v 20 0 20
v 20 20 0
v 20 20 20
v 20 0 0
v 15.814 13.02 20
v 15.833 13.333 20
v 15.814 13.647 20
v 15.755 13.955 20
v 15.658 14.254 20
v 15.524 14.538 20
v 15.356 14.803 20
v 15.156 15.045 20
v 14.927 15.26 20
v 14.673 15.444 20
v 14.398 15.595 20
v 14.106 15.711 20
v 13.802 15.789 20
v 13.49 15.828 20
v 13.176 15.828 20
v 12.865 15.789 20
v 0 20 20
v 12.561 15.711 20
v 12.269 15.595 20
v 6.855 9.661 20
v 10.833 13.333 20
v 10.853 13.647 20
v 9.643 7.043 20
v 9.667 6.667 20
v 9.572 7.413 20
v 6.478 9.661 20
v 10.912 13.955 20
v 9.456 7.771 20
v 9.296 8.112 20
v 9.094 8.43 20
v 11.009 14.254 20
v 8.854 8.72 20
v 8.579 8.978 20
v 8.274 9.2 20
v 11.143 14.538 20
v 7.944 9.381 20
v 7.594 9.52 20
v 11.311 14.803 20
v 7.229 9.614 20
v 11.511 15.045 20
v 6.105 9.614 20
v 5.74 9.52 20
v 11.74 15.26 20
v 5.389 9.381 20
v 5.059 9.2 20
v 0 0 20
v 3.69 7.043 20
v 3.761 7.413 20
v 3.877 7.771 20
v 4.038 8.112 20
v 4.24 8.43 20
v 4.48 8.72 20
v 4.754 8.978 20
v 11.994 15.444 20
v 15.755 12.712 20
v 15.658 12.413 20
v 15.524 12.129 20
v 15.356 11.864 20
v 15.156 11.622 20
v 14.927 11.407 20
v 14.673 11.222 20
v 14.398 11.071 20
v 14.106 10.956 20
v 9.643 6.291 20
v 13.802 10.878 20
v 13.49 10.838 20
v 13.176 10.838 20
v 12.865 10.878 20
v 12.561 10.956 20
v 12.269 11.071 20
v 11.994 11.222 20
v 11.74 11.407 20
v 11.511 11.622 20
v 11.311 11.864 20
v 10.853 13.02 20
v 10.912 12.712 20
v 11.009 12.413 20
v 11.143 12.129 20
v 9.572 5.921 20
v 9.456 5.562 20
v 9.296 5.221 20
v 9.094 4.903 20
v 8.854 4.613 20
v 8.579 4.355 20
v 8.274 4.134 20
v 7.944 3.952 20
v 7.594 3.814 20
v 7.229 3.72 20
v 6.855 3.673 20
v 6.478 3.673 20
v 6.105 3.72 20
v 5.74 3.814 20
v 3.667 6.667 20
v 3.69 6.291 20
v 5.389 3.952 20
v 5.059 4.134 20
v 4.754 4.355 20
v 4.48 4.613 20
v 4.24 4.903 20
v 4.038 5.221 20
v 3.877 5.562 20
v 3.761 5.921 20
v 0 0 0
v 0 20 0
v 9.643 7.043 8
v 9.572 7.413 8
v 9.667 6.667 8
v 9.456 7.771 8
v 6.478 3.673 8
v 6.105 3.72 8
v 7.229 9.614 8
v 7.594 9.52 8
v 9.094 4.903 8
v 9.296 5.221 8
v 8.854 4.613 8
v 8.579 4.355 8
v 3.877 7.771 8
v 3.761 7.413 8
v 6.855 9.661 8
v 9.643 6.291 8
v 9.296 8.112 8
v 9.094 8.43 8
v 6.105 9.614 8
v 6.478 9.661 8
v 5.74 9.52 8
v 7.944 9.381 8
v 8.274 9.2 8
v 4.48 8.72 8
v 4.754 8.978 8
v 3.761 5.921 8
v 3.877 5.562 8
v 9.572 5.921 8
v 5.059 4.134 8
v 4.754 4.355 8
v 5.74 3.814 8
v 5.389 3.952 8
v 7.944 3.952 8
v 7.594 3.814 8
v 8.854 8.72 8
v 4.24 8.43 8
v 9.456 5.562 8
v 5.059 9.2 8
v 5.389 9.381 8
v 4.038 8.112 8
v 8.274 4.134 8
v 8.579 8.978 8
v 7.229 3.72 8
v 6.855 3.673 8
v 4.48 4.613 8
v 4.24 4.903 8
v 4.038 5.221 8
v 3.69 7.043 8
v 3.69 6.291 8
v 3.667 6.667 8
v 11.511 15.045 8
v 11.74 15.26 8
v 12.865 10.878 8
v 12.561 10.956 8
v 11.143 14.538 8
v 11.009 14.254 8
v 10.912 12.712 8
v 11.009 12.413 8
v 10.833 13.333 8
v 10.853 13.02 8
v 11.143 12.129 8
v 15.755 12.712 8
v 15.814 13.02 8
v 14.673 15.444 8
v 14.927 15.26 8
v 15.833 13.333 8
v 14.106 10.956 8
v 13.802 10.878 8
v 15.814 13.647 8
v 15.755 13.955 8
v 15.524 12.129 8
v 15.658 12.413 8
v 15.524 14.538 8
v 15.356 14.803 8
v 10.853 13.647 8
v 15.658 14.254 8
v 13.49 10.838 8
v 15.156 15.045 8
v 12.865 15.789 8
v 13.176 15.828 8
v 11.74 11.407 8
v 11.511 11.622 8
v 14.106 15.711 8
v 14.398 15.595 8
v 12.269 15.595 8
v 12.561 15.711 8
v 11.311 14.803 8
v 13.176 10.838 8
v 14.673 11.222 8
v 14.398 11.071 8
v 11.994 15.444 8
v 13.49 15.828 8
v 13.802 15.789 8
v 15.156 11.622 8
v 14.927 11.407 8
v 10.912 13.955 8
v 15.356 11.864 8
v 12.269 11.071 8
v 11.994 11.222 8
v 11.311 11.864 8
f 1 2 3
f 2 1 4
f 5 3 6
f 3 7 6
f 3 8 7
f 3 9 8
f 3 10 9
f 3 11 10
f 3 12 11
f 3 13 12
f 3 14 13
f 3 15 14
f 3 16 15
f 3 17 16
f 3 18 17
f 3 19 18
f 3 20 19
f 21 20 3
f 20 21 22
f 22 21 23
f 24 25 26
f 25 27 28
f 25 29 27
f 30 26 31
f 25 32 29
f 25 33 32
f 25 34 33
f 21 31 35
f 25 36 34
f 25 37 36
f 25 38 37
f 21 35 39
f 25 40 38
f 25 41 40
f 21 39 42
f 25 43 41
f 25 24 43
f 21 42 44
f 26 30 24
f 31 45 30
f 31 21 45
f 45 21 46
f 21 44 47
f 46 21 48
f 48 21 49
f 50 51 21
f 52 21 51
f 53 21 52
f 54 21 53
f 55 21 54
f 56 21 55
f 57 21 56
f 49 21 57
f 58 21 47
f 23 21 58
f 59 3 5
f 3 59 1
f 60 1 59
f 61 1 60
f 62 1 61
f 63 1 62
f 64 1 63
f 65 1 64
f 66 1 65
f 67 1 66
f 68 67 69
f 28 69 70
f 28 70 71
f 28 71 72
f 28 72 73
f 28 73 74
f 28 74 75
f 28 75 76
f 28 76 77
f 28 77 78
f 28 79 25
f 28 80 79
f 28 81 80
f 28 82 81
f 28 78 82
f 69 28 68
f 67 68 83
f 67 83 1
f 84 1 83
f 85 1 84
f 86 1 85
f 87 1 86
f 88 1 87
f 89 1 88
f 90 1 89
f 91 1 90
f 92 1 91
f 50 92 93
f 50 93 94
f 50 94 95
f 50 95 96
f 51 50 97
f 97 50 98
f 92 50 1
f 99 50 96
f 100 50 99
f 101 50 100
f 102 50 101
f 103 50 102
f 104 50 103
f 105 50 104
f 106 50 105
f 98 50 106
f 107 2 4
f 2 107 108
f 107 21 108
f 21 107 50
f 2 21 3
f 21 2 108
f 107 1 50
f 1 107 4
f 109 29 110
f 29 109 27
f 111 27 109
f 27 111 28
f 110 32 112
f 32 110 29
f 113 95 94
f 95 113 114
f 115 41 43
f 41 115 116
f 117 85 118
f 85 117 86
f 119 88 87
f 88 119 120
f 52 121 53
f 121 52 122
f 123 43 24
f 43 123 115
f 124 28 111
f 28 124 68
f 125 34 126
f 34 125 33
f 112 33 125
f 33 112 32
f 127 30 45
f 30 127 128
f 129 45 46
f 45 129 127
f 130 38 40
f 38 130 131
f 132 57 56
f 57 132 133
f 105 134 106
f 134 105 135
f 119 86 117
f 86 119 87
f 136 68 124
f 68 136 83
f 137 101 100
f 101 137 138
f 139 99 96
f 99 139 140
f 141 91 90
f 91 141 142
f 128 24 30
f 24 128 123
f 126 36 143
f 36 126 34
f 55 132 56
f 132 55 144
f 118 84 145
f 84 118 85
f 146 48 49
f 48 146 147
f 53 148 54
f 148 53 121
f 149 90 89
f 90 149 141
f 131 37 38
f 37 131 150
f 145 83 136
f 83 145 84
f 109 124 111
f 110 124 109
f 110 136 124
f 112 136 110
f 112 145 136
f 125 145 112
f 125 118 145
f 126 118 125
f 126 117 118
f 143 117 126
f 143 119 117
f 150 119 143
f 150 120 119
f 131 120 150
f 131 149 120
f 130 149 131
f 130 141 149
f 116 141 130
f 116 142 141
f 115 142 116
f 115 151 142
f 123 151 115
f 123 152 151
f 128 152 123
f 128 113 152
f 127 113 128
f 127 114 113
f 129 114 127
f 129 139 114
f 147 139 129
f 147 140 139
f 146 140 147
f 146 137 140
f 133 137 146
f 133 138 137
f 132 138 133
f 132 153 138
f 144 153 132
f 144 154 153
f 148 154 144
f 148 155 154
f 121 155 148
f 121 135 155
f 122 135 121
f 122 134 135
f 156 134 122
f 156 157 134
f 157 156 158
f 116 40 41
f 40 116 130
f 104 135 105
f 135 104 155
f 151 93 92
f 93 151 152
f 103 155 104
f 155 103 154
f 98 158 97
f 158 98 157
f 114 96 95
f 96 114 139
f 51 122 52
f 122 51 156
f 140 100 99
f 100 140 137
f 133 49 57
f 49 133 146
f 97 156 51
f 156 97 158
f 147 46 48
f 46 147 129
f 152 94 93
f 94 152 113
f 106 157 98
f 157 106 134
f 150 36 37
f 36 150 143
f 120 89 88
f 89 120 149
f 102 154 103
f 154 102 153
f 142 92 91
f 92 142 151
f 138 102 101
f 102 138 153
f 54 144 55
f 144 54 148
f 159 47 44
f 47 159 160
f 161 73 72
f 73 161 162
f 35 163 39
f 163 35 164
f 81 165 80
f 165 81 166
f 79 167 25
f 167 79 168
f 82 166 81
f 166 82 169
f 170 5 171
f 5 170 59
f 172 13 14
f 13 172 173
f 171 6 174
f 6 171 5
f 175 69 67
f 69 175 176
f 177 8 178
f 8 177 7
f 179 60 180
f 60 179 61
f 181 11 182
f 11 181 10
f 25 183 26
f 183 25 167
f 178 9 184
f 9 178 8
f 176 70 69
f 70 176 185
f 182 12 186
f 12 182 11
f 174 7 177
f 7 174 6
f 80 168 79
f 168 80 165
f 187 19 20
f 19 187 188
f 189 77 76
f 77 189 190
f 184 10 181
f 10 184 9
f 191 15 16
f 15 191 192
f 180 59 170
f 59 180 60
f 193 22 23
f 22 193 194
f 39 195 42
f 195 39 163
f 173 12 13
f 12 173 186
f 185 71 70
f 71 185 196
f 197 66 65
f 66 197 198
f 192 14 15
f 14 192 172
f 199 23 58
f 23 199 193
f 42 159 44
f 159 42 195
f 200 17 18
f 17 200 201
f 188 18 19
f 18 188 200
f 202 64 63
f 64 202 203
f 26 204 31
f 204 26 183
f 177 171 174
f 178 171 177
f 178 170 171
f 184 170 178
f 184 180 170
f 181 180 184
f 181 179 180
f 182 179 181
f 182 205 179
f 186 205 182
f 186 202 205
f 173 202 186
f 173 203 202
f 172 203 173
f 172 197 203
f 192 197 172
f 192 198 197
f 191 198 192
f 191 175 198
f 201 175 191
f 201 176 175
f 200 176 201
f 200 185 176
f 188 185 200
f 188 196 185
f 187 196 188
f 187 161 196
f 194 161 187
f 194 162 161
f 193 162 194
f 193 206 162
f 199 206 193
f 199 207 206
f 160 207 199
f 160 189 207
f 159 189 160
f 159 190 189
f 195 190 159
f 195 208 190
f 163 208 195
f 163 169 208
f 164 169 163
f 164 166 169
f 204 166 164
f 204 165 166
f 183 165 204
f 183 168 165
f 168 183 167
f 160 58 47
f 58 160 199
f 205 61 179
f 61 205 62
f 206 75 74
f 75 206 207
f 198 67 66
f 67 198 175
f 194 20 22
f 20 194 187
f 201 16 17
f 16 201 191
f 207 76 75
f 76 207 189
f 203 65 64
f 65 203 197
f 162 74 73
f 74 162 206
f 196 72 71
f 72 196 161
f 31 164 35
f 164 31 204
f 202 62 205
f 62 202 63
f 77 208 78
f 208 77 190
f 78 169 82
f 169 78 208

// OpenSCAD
$fn=50;
Q=20;
H=20;
D=12;
difference() {
  cube([Q,Q,H]);
  translate([Q*1/3,Q*1/3,H-D]) #cylinder(D,d=6);
  translate([Q*2/3,Q*2/3,H-D]) #cylinder(D,d=5);
}
